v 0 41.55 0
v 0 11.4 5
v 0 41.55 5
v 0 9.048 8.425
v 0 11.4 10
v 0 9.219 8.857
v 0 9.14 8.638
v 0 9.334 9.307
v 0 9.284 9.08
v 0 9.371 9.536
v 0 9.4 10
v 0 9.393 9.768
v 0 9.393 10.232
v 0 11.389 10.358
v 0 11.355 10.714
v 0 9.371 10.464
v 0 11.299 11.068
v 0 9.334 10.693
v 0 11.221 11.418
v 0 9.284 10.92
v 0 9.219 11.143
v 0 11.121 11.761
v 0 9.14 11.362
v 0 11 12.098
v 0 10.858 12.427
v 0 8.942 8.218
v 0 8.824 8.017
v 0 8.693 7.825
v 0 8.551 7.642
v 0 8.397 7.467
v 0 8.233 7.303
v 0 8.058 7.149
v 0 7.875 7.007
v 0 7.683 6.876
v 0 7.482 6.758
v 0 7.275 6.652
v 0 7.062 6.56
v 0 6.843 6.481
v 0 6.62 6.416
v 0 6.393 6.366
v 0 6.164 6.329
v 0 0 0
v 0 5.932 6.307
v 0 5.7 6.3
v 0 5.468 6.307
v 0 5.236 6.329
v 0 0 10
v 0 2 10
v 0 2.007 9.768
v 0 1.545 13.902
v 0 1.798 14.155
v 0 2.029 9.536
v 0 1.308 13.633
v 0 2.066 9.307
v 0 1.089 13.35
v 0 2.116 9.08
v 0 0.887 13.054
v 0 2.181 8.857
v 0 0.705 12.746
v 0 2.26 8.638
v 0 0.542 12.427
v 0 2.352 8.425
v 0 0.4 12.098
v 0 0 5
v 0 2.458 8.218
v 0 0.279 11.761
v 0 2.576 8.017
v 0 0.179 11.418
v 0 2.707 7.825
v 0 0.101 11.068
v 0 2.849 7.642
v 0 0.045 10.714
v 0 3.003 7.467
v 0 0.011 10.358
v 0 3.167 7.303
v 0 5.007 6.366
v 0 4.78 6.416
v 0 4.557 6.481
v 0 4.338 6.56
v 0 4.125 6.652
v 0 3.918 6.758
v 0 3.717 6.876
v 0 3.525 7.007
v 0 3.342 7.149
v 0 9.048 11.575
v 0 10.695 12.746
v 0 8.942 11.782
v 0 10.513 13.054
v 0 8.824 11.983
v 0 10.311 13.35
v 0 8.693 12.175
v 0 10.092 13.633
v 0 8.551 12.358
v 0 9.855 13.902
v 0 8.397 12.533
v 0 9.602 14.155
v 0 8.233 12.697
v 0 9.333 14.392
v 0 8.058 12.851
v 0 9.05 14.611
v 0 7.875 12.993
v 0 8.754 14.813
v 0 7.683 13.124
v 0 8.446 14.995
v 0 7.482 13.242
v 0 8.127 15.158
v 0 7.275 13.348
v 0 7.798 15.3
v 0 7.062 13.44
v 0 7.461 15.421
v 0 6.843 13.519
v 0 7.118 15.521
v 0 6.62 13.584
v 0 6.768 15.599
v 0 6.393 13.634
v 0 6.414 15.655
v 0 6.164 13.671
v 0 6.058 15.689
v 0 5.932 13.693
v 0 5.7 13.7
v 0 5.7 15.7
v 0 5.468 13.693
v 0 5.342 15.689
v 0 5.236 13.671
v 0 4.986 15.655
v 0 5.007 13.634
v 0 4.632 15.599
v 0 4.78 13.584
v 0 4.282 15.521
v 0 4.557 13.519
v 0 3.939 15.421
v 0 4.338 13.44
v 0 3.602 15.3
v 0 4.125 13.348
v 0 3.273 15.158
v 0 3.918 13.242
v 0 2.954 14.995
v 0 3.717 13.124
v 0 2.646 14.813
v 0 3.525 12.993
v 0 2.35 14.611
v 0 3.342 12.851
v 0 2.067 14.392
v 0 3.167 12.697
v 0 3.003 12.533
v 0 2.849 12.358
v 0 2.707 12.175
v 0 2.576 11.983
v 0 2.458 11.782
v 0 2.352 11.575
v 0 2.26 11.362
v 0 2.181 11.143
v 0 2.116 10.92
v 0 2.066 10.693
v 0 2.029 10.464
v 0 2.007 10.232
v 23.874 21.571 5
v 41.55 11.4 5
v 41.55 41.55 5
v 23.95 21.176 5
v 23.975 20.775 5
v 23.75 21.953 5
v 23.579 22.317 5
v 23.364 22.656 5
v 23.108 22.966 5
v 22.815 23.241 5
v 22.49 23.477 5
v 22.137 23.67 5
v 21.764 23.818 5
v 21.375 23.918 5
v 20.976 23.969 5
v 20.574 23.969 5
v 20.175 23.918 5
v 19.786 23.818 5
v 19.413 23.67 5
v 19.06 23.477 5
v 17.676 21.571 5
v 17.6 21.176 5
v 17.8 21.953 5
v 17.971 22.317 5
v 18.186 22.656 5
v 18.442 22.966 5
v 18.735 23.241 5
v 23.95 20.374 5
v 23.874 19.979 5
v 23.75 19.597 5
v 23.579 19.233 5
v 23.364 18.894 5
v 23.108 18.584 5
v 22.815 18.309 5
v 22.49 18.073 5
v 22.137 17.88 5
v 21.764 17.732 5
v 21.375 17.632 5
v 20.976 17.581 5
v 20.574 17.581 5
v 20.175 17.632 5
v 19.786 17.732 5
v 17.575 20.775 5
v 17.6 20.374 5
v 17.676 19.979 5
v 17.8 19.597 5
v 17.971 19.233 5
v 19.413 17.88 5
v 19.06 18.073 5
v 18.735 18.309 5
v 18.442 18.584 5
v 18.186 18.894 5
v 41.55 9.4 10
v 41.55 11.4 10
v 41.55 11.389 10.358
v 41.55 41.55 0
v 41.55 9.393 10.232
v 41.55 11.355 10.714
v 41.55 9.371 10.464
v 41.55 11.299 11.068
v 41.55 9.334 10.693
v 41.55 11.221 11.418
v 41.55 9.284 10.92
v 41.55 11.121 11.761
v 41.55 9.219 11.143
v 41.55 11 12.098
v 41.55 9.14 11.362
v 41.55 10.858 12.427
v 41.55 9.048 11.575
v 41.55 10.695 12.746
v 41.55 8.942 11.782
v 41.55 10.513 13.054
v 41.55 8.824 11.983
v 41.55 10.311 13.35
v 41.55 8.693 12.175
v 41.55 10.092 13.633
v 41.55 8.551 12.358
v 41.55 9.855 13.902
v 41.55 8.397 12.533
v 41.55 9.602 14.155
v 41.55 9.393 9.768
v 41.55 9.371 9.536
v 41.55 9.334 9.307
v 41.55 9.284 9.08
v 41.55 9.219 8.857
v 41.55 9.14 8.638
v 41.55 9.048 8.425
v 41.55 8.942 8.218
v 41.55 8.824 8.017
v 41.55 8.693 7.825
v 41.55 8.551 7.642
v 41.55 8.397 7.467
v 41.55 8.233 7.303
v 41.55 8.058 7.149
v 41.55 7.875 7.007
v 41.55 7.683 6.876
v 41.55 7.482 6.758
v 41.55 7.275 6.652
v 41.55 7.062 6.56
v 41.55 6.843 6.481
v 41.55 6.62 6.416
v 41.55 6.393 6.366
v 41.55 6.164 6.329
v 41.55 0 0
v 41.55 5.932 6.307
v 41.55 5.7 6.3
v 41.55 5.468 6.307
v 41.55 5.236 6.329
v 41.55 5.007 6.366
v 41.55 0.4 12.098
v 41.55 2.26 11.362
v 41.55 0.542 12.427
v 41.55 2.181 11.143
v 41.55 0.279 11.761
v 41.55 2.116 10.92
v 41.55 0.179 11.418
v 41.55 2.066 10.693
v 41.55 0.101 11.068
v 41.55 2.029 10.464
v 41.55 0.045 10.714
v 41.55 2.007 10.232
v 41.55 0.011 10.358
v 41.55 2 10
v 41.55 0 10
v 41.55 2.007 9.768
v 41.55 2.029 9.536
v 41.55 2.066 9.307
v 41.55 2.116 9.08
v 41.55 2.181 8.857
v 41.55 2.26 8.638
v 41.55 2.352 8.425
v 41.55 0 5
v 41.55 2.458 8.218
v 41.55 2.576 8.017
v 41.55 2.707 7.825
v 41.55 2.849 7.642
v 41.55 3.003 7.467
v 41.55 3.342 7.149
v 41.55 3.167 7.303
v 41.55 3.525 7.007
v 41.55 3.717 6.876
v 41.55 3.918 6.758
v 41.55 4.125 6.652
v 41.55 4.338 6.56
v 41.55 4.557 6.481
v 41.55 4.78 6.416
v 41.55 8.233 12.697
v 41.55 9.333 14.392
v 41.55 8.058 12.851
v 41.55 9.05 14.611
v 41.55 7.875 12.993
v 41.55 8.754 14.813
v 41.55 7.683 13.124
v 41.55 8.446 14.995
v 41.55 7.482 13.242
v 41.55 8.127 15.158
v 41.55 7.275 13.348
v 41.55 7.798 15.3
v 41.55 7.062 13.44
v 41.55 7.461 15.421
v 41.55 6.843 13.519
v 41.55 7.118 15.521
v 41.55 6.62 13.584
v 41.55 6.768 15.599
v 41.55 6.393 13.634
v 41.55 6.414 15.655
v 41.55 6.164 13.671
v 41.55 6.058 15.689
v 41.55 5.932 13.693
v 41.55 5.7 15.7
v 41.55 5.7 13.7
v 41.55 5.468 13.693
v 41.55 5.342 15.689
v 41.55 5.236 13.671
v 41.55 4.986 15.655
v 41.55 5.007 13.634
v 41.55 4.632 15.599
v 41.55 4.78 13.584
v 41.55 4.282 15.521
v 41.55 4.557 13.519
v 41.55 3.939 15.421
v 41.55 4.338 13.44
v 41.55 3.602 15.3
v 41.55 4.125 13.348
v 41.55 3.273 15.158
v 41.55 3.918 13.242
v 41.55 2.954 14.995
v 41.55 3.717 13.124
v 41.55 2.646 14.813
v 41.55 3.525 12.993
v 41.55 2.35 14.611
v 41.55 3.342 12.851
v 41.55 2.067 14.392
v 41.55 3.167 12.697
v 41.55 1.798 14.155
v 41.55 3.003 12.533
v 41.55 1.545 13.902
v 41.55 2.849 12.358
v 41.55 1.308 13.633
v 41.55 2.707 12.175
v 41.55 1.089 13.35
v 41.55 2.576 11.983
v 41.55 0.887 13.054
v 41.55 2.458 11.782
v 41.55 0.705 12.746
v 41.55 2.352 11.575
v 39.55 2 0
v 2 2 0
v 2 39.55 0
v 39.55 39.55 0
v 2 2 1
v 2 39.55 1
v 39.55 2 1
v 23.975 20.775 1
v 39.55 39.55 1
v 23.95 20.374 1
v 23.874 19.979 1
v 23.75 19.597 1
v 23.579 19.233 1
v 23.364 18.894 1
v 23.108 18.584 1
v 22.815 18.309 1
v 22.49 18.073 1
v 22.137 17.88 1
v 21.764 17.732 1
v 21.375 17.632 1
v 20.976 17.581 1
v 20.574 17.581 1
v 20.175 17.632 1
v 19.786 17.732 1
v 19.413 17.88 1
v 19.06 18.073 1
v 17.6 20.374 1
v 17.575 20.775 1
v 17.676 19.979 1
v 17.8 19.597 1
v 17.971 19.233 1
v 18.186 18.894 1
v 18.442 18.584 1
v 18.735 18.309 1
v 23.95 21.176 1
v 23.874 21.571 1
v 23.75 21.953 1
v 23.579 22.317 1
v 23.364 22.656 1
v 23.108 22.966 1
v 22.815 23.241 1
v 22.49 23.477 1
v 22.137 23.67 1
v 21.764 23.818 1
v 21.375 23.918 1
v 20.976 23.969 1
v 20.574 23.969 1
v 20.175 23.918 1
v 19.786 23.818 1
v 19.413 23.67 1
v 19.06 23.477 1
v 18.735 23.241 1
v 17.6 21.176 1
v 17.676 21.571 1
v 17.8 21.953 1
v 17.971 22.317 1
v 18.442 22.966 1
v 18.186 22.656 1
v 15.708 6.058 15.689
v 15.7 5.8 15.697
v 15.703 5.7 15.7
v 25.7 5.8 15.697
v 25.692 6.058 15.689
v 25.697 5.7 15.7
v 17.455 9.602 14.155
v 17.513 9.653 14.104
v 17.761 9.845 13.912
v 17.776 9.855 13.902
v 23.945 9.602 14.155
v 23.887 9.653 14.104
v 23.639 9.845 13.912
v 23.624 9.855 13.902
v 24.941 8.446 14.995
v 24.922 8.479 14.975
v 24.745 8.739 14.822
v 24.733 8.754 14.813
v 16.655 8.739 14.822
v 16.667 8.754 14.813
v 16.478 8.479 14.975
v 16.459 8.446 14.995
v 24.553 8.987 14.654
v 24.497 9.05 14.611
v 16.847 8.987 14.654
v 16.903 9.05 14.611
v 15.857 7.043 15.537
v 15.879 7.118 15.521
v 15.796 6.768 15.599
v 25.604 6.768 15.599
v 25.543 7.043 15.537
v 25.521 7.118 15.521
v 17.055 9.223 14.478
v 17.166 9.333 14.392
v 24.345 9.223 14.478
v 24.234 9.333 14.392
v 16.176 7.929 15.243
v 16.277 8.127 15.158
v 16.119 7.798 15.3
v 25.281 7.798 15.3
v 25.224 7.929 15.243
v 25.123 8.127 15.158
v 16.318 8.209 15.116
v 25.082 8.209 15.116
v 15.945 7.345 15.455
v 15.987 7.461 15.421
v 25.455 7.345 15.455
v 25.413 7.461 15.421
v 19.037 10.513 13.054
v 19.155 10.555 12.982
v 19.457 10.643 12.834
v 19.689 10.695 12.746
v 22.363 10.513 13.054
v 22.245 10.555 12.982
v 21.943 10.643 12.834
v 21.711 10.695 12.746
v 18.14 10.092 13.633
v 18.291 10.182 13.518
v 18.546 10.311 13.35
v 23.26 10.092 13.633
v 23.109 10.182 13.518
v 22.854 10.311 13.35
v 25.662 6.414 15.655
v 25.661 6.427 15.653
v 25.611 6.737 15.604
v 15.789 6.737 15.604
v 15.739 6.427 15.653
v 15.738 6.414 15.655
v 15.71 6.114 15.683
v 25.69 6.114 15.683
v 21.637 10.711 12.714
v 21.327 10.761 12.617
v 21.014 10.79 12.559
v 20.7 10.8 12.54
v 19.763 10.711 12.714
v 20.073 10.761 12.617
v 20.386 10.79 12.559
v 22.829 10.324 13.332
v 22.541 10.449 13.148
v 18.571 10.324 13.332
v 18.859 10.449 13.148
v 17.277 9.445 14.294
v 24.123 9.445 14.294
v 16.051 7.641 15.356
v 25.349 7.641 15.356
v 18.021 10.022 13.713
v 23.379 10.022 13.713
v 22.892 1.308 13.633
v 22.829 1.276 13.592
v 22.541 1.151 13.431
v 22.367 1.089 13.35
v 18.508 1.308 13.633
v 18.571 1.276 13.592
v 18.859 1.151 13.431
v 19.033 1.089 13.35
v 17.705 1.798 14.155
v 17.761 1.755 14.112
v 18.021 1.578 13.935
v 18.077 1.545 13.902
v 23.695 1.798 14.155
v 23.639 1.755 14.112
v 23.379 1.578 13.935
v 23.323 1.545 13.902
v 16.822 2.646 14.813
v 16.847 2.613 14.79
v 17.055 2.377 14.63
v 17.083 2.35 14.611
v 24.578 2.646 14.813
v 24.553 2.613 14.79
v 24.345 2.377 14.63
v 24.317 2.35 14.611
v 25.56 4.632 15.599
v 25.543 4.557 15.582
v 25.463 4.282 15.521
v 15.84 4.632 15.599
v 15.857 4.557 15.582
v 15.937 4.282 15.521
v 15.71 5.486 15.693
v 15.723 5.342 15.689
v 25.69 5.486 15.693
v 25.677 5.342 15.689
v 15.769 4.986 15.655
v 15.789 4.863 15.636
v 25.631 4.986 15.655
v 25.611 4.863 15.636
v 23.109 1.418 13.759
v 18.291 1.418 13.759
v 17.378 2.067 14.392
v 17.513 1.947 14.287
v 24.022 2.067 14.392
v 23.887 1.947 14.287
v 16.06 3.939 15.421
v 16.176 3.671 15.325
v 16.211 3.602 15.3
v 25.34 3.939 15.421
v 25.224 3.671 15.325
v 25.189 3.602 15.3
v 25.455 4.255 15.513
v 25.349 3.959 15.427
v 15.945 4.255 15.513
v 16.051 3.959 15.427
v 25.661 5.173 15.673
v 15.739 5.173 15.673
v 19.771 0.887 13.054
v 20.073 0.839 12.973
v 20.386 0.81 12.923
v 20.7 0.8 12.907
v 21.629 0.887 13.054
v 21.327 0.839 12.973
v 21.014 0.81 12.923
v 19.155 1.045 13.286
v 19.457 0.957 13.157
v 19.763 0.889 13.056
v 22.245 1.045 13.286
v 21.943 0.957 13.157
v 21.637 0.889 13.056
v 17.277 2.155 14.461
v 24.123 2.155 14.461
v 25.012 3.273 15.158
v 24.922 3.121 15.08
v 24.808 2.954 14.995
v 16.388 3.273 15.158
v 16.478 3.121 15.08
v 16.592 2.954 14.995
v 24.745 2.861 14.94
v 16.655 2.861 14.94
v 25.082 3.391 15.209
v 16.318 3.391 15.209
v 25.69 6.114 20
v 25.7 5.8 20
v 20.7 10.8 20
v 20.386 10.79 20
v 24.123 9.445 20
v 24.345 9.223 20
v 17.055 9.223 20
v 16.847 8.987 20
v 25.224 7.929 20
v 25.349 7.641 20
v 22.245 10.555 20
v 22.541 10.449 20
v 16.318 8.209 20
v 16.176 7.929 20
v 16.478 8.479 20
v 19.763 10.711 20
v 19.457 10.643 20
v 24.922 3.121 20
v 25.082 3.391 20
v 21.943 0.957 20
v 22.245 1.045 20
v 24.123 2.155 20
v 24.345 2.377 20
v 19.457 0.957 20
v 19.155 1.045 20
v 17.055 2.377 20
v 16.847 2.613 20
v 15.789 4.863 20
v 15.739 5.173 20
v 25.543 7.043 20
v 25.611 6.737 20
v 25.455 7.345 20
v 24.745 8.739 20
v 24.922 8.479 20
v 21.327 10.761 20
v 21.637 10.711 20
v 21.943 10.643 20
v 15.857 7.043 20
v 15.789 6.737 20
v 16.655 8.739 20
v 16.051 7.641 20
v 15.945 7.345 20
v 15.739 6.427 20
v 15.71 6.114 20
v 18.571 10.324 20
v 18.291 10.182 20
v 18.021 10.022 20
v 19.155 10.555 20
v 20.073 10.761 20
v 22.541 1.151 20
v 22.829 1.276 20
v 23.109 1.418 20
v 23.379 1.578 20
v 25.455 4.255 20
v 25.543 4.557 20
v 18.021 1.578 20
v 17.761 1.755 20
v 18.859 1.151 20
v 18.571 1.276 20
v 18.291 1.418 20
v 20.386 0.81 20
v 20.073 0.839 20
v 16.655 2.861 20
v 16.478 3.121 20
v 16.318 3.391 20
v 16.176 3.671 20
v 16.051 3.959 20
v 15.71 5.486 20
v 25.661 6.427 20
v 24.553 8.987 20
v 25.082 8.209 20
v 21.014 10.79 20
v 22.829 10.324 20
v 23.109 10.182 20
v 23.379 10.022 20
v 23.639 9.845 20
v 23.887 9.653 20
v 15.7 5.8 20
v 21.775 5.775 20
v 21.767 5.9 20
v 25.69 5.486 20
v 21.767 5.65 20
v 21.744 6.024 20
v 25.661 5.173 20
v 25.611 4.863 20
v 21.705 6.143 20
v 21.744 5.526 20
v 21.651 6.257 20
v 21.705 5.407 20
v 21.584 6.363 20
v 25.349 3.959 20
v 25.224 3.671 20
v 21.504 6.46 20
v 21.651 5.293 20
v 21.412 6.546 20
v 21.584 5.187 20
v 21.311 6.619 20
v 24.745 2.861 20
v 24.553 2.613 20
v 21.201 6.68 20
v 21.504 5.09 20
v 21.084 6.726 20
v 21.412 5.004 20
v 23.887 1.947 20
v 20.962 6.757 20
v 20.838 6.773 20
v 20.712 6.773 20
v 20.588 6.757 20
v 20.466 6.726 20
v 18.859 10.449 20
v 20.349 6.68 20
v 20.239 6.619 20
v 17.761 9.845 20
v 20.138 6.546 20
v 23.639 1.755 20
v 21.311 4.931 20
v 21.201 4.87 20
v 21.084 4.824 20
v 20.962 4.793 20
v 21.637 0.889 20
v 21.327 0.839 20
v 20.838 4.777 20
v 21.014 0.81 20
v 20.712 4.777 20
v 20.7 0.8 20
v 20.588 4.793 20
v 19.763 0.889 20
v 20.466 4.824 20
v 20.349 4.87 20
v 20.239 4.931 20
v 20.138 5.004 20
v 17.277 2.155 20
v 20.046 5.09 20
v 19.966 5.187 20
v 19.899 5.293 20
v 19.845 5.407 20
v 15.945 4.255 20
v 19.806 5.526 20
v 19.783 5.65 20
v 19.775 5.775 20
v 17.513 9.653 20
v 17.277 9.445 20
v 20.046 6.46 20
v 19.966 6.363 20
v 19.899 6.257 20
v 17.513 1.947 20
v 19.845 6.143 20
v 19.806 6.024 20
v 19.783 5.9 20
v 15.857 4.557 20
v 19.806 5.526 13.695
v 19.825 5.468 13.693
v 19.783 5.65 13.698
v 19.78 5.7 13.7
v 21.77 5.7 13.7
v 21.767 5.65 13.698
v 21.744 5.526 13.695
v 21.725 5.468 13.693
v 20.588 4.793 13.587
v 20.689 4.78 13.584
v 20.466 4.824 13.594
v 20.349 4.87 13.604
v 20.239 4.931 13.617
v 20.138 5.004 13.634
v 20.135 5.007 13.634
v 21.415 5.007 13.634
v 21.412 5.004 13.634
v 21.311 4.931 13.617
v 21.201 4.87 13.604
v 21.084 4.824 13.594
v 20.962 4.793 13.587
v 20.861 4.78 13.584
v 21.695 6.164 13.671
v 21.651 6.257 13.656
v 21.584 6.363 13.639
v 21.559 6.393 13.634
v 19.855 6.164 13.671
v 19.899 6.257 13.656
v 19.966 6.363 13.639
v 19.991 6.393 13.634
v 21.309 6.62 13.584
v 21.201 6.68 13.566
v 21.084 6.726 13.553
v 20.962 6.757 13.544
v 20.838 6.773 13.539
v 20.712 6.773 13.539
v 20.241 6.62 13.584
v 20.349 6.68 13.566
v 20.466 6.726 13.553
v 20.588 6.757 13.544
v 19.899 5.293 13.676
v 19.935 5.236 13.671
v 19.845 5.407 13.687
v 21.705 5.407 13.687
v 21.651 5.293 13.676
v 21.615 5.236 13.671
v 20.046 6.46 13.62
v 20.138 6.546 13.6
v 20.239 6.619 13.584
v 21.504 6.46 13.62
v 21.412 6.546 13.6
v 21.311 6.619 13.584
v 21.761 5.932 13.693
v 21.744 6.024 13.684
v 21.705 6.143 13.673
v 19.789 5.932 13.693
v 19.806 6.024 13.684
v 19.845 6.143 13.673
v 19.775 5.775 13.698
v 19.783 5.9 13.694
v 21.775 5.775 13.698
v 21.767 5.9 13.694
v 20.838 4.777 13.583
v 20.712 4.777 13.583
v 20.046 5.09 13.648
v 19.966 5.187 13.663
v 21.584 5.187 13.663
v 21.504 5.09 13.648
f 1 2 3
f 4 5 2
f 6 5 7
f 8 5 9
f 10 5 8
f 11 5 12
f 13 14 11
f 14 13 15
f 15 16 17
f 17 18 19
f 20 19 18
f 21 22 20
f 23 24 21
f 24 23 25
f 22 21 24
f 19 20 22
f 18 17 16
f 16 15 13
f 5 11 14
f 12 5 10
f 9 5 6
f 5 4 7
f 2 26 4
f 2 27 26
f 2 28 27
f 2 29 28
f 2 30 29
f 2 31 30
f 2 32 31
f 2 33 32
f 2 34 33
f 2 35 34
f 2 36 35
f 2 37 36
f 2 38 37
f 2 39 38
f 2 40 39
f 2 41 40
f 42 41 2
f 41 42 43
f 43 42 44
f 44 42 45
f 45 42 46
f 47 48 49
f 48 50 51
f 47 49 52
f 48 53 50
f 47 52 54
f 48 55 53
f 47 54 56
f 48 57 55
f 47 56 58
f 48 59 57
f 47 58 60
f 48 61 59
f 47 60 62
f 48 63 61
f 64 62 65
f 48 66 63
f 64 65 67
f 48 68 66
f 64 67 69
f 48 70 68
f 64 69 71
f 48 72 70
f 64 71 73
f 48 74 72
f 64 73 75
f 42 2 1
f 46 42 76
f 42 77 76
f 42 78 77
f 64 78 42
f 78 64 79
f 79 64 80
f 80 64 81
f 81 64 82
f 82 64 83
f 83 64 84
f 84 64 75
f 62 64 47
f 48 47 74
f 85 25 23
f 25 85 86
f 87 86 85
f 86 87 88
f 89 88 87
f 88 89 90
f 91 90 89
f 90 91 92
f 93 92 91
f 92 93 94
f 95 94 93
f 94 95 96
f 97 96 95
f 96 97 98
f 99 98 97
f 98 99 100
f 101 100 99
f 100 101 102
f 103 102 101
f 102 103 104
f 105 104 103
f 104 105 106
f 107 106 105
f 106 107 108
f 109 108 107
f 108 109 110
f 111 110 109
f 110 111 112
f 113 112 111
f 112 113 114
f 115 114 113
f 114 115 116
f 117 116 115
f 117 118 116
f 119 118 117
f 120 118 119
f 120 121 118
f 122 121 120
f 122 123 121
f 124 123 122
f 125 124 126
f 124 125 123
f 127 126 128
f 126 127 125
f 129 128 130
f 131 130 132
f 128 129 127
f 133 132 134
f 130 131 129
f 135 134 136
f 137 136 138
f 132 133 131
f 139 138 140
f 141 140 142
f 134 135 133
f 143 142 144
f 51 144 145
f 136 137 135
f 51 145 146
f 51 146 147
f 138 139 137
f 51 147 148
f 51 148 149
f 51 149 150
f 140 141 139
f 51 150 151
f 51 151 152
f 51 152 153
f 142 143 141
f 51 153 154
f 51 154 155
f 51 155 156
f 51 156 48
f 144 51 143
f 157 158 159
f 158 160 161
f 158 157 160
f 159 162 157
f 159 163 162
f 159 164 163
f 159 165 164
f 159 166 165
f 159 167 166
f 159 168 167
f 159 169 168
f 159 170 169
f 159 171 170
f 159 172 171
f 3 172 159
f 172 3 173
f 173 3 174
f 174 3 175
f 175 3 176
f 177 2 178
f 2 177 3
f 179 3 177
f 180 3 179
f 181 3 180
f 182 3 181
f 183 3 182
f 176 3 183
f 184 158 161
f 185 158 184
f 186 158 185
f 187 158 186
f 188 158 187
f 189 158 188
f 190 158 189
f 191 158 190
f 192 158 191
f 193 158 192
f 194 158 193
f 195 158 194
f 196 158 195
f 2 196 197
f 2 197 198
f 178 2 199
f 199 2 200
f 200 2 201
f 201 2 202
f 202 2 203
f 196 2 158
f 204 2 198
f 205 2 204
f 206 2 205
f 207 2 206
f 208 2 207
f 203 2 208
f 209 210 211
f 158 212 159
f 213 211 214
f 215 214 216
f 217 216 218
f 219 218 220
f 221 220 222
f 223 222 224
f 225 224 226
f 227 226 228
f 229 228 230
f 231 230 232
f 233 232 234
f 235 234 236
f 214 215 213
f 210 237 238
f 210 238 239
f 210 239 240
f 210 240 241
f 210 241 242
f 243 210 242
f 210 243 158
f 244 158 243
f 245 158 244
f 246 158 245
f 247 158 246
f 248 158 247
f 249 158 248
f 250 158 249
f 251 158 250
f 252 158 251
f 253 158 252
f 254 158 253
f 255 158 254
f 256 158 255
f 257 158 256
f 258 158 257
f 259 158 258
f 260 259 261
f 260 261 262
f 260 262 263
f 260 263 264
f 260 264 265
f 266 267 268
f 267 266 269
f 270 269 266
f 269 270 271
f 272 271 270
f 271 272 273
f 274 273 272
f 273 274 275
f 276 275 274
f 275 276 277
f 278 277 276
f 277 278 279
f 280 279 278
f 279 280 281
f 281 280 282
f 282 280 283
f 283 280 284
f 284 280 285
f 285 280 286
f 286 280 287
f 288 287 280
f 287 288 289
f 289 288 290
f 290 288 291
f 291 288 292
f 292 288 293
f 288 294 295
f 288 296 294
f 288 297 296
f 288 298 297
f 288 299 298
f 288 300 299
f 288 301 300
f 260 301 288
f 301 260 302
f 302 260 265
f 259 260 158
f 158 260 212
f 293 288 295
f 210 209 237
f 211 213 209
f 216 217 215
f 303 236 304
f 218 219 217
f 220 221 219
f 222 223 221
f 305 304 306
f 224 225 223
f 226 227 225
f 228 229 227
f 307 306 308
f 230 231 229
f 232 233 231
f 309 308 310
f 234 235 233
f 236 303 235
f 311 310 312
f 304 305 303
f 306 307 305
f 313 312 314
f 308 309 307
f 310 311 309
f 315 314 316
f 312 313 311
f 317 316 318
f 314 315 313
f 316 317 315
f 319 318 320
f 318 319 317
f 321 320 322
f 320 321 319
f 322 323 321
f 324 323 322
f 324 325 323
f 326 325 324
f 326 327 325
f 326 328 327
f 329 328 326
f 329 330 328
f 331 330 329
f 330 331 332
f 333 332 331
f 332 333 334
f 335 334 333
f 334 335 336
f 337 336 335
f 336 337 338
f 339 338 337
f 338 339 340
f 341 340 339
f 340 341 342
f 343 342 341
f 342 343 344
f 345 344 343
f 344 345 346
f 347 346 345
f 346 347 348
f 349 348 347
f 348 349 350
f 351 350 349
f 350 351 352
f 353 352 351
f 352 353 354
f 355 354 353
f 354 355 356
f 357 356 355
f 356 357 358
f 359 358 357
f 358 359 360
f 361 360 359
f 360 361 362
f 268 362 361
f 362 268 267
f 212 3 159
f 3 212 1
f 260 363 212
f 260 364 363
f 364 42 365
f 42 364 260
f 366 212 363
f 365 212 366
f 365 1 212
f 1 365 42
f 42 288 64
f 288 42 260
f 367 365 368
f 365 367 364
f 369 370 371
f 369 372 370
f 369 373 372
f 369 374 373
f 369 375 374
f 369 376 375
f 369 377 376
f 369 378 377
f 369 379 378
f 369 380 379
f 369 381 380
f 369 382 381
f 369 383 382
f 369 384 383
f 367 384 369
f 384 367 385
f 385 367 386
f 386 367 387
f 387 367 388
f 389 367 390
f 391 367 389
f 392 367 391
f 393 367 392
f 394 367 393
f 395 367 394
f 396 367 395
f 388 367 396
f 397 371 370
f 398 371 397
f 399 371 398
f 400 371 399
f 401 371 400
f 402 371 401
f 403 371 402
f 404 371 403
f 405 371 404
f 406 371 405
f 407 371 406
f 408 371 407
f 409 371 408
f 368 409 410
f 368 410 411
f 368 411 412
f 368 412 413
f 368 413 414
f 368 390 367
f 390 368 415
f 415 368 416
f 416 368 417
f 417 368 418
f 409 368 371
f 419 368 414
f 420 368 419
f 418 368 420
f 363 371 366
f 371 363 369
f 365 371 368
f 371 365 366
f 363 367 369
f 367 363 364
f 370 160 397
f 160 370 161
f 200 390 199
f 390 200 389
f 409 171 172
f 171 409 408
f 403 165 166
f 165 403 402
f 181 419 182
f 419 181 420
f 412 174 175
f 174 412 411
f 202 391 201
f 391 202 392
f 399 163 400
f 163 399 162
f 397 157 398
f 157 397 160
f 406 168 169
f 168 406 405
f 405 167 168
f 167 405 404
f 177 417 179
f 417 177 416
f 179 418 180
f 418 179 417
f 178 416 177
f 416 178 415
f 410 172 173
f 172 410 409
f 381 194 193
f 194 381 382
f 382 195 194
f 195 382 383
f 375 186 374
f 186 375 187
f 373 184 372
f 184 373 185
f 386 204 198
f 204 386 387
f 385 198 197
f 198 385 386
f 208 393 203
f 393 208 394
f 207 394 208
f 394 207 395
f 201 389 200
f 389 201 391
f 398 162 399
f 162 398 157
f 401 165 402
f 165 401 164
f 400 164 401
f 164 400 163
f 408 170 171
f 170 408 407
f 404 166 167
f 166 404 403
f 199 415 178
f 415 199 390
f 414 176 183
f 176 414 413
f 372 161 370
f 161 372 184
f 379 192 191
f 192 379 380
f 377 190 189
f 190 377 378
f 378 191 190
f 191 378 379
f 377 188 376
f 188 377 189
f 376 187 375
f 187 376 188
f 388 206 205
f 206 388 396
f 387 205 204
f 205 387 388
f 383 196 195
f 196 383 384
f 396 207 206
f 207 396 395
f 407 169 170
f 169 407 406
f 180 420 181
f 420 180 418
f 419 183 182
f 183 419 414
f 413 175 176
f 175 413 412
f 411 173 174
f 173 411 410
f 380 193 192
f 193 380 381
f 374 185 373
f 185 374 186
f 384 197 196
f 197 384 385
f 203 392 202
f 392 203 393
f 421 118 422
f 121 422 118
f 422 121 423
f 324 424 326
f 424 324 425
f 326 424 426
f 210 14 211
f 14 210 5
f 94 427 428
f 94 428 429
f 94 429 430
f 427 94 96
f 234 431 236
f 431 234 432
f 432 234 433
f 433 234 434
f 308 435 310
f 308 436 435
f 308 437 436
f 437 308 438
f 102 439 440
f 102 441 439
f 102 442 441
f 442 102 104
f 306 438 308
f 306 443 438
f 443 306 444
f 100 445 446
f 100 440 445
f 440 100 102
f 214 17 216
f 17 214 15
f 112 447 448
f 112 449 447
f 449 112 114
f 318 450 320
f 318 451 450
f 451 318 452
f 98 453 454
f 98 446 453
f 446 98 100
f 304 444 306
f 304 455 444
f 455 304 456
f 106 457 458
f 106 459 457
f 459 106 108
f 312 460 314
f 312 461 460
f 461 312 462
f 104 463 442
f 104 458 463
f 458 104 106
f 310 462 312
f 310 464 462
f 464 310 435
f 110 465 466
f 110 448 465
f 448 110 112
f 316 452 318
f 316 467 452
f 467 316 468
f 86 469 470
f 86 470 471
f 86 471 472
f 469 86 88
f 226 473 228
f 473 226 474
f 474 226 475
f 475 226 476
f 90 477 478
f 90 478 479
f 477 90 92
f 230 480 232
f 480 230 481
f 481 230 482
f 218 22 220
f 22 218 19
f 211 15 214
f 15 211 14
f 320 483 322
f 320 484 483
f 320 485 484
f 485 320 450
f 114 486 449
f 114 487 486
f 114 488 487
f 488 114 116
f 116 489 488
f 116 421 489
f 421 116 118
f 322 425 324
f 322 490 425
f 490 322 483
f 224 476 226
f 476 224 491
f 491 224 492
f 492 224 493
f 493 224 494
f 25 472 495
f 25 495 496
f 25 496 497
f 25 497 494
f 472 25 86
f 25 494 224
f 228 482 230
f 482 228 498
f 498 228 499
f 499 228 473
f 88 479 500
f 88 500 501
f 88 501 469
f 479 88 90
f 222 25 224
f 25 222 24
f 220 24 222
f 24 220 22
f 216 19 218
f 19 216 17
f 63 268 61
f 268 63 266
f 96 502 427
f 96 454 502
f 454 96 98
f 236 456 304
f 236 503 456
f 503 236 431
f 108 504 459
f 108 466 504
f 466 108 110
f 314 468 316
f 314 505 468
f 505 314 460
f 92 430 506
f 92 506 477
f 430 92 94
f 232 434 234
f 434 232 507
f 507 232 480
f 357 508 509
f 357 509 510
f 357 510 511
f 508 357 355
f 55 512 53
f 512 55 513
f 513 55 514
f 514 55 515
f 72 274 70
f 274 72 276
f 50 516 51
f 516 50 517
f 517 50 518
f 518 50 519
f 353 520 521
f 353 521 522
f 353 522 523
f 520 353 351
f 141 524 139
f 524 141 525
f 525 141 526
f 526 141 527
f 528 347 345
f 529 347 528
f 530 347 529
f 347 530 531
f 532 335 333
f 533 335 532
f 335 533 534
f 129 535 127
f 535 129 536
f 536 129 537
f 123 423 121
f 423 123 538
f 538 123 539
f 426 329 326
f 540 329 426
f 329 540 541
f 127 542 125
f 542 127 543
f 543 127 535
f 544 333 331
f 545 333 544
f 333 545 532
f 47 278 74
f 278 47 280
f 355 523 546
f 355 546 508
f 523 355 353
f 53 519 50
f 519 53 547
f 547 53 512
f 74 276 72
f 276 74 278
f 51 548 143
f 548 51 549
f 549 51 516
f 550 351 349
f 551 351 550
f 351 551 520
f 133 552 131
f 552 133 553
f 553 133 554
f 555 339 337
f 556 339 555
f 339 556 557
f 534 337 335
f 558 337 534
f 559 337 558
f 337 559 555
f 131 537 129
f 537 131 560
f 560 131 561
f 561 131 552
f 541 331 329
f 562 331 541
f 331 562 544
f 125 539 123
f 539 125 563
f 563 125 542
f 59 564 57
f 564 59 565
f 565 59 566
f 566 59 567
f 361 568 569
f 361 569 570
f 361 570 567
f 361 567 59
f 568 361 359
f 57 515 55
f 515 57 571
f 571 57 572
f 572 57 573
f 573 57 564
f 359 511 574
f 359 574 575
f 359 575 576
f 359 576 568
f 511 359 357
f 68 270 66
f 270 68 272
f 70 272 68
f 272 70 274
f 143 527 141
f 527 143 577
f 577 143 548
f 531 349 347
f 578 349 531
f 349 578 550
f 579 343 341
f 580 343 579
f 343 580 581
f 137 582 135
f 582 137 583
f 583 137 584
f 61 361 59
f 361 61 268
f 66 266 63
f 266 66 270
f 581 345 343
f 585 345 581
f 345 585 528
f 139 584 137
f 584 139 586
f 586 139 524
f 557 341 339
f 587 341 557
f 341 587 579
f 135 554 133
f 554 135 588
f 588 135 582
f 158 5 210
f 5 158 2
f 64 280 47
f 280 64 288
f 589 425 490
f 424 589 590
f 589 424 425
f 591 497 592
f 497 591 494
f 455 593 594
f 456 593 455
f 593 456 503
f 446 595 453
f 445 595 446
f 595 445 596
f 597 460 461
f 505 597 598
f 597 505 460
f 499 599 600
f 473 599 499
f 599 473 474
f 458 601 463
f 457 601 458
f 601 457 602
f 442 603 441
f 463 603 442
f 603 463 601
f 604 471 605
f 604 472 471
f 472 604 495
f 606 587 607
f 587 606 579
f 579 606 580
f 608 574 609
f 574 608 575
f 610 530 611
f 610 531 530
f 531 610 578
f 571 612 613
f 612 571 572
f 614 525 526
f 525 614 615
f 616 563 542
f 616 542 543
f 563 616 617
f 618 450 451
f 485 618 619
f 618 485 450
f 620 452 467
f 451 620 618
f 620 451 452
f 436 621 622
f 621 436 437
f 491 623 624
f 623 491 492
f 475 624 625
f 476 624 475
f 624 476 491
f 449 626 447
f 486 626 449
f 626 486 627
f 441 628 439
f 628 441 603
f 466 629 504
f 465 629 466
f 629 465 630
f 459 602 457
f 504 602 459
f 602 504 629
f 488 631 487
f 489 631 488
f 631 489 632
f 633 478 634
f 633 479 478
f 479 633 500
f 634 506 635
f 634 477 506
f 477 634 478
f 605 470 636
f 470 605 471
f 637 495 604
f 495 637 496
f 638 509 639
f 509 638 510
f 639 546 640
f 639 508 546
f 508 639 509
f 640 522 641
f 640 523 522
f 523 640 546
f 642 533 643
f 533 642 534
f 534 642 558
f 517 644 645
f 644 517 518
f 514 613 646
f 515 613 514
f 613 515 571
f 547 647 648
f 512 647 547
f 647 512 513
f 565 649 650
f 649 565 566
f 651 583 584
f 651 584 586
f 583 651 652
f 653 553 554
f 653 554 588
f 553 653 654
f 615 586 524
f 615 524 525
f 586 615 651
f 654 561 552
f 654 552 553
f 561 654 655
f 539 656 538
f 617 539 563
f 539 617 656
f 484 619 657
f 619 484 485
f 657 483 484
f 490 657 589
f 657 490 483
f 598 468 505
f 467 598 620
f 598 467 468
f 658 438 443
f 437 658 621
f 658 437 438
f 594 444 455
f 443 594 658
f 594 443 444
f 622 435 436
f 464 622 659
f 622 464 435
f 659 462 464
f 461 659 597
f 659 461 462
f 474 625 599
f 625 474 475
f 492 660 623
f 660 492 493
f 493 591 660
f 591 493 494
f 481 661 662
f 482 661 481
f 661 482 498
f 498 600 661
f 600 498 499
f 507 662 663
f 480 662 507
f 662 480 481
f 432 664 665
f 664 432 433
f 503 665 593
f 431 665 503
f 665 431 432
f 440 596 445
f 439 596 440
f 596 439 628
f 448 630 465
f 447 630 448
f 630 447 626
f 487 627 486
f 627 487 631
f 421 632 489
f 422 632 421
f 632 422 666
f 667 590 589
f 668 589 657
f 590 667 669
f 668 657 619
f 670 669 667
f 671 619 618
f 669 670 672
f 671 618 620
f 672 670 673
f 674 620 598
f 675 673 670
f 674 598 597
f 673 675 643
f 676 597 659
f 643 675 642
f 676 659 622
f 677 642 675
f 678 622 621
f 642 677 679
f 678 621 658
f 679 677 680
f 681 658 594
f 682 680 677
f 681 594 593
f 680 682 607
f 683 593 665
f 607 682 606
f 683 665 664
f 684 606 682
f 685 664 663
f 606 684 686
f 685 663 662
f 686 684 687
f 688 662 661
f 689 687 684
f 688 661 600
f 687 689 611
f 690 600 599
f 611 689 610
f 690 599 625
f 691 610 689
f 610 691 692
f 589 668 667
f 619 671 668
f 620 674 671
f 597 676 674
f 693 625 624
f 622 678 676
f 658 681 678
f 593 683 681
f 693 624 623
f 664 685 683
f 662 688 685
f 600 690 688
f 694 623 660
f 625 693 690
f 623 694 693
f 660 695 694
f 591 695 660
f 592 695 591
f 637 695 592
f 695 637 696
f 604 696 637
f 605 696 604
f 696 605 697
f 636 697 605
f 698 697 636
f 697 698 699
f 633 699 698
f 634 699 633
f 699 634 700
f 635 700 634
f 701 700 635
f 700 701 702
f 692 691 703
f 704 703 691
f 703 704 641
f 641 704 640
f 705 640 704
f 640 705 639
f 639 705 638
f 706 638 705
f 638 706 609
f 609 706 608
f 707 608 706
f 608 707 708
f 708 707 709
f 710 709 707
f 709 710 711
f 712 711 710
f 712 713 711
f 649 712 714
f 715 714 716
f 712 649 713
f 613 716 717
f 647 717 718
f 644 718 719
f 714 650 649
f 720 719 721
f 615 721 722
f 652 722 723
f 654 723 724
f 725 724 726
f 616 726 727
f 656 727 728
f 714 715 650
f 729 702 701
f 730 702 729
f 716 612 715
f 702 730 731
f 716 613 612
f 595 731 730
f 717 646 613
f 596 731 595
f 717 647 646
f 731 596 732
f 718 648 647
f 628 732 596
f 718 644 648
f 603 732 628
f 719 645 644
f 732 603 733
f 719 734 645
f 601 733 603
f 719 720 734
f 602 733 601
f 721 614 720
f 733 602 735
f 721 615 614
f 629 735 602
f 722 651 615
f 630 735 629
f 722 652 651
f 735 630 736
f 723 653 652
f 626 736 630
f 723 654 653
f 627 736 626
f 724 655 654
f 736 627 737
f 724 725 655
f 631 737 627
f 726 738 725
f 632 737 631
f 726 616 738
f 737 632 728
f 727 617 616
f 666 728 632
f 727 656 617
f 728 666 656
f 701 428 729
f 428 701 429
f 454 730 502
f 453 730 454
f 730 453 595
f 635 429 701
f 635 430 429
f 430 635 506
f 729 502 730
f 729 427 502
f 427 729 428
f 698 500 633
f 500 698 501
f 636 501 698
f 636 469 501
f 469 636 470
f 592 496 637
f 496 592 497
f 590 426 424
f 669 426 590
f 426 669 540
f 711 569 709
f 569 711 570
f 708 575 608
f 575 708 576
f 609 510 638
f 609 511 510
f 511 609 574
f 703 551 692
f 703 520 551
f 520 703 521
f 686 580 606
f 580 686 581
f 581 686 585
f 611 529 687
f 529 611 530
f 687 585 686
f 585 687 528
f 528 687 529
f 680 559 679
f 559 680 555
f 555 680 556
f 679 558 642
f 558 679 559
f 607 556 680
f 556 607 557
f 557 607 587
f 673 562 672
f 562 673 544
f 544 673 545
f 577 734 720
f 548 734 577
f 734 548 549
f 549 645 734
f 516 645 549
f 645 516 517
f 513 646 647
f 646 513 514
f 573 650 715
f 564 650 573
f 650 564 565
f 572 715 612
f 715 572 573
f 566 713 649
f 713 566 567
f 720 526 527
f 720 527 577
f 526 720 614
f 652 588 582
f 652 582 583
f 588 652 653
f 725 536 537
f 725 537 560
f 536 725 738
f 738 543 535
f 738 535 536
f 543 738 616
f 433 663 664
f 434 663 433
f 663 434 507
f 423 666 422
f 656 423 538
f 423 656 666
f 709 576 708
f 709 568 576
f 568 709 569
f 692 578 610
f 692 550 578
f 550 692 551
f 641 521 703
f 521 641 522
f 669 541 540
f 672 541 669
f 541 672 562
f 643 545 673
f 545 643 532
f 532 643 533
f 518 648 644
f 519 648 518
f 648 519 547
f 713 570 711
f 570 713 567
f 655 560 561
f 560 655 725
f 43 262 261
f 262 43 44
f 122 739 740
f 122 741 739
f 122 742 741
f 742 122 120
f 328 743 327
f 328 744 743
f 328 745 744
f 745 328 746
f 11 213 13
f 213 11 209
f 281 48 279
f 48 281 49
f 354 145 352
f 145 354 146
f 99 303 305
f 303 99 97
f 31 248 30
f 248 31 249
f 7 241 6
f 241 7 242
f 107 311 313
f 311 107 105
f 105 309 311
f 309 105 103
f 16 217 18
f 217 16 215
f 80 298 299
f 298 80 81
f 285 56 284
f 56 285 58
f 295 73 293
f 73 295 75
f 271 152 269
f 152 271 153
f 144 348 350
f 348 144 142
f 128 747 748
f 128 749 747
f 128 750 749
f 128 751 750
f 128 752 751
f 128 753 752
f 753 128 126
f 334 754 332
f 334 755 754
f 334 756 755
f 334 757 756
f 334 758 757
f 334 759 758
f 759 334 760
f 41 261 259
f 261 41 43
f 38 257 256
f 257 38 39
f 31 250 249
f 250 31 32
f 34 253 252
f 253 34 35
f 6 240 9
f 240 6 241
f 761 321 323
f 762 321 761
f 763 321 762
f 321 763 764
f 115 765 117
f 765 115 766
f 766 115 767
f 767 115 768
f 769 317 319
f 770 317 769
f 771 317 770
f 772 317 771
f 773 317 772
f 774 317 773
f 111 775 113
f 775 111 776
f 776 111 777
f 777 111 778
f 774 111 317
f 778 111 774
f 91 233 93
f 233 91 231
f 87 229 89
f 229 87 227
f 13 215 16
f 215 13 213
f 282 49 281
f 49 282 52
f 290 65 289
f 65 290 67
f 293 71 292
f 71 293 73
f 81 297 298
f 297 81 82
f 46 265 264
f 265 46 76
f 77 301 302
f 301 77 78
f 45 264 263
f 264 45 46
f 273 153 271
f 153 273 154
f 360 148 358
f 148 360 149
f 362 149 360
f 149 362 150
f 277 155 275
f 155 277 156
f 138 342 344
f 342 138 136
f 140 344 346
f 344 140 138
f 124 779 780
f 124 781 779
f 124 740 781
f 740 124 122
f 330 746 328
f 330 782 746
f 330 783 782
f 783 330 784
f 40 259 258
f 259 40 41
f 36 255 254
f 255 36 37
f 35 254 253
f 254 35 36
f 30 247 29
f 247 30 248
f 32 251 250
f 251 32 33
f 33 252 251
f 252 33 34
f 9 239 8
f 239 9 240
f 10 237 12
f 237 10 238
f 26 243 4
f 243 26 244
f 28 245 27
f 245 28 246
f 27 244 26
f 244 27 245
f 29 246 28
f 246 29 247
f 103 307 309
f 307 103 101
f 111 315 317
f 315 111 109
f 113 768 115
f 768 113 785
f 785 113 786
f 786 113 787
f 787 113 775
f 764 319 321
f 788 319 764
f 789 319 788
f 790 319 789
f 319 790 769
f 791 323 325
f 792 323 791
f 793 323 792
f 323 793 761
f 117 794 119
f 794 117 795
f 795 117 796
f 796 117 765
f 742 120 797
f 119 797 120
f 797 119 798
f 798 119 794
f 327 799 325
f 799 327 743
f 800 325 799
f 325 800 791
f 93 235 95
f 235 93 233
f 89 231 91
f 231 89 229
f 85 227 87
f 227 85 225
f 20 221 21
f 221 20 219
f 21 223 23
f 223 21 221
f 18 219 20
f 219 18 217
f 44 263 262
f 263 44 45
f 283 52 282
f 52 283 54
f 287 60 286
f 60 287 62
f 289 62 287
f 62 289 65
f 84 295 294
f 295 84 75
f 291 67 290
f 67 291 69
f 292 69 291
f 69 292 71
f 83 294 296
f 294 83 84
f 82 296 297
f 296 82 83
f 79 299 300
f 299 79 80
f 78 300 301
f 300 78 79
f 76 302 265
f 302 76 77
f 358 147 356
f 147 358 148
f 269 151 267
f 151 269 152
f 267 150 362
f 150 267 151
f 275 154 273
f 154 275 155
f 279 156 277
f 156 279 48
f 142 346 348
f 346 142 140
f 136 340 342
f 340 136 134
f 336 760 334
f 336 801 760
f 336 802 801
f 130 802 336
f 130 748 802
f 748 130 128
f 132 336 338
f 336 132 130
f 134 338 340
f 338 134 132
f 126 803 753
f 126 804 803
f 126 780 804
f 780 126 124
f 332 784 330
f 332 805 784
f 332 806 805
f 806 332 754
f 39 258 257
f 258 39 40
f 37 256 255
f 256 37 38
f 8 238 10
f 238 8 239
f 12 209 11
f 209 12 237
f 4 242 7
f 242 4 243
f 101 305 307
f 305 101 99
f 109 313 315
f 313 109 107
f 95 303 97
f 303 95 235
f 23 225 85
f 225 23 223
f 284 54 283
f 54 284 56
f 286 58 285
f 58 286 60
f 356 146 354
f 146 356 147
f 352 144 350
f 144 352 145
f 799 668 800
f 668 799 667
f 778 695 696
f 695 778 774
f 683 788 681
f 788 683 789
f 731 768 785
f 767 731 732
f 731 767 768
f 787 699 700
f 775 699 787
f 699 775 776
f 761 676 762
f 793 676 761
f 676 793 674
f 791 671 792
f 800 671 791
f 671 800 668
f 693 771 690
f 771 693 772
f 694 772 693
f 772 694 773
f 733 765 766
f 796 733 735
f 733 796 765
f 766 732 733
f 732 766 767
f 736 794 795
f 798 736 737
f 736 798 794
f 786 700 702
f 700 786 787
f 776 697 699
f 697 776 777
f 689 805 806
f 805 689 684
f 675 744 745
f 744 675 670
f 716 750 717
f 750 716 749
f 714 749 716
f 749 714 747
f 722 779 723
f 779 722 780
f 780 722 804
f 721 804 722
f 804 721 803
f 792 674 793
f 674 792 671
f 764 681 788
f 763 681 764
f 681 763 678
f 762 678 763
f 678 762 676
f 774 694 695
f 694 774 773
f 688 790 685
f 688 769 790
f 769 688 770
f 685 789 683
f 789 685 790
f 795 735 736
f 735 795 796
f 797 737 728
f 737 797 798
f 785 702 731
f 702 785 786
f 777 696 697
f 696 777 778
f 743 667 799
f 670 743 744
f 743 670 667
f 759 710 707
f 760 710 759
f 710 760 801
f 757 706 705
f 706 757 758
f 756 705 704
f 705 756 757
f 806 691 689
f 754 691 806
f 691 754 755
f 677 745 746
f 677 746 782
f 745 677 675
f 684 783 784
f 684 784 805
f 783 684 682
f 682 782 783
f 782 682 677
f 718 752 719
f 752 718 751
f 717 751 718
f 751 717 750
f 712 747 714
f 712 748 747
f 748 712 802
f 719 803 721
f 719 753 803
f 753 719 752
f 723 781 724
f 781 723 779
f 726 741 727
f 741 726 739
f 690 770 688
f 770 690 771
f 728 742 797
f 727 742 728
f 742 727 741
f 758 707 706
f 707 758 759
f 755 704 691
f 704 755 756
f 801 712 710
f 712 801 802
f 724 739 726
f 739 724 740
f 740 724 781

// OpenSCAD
aa=13.2;
rr=1; //raio parafuso fixação offset

difference(){
    translate([0,0,0])cube([37.55+4,37.55+4,5]);
    #translate([2,2,-4])cube([37.55,37.55,5]);    
    #translate([(37.55+4)/2,(37.55+4)/2,-9])cylinder(5+9,6.4/2,6.4/2,$fn=50);
}

difference(){
    translate([0,-aa,0])
        {    
        translate([0,16.35+5.1/2,10])rotate([0,90,0])cylinder(37.55+4,6.4/2+0.5+2,6.4/2+0.5+2,$fn=100);
        translate([0,16.35+5.1/2-6.4/2-0.5-2,5])cube([37.55+4,7.4+4,5]);
        translate([20.7,19,10]) cylinder(10,5,5,$fn=100);        
        }
    
    #translate([0,16.35+5.1/2-aa,10])rotate([0,90,0])cylinder(37.55+4,6.4/2+0.5,6.4/2+0.5,$fn=100);
    #translate([(37.55+4)/2,(37.55+4)/2-15,10])cylinder(10,rr,rr,$fn=50);    
};

//(37.55+4)/2 - (16.35+5.1/2-13.2)


//translate([20.5,5.3,10]) difference(){
    //cylinder(10,5,5,$fn=100);    
//#translate([0,0,-2])cylinder(15,2,2,$fn=50);    
//};
